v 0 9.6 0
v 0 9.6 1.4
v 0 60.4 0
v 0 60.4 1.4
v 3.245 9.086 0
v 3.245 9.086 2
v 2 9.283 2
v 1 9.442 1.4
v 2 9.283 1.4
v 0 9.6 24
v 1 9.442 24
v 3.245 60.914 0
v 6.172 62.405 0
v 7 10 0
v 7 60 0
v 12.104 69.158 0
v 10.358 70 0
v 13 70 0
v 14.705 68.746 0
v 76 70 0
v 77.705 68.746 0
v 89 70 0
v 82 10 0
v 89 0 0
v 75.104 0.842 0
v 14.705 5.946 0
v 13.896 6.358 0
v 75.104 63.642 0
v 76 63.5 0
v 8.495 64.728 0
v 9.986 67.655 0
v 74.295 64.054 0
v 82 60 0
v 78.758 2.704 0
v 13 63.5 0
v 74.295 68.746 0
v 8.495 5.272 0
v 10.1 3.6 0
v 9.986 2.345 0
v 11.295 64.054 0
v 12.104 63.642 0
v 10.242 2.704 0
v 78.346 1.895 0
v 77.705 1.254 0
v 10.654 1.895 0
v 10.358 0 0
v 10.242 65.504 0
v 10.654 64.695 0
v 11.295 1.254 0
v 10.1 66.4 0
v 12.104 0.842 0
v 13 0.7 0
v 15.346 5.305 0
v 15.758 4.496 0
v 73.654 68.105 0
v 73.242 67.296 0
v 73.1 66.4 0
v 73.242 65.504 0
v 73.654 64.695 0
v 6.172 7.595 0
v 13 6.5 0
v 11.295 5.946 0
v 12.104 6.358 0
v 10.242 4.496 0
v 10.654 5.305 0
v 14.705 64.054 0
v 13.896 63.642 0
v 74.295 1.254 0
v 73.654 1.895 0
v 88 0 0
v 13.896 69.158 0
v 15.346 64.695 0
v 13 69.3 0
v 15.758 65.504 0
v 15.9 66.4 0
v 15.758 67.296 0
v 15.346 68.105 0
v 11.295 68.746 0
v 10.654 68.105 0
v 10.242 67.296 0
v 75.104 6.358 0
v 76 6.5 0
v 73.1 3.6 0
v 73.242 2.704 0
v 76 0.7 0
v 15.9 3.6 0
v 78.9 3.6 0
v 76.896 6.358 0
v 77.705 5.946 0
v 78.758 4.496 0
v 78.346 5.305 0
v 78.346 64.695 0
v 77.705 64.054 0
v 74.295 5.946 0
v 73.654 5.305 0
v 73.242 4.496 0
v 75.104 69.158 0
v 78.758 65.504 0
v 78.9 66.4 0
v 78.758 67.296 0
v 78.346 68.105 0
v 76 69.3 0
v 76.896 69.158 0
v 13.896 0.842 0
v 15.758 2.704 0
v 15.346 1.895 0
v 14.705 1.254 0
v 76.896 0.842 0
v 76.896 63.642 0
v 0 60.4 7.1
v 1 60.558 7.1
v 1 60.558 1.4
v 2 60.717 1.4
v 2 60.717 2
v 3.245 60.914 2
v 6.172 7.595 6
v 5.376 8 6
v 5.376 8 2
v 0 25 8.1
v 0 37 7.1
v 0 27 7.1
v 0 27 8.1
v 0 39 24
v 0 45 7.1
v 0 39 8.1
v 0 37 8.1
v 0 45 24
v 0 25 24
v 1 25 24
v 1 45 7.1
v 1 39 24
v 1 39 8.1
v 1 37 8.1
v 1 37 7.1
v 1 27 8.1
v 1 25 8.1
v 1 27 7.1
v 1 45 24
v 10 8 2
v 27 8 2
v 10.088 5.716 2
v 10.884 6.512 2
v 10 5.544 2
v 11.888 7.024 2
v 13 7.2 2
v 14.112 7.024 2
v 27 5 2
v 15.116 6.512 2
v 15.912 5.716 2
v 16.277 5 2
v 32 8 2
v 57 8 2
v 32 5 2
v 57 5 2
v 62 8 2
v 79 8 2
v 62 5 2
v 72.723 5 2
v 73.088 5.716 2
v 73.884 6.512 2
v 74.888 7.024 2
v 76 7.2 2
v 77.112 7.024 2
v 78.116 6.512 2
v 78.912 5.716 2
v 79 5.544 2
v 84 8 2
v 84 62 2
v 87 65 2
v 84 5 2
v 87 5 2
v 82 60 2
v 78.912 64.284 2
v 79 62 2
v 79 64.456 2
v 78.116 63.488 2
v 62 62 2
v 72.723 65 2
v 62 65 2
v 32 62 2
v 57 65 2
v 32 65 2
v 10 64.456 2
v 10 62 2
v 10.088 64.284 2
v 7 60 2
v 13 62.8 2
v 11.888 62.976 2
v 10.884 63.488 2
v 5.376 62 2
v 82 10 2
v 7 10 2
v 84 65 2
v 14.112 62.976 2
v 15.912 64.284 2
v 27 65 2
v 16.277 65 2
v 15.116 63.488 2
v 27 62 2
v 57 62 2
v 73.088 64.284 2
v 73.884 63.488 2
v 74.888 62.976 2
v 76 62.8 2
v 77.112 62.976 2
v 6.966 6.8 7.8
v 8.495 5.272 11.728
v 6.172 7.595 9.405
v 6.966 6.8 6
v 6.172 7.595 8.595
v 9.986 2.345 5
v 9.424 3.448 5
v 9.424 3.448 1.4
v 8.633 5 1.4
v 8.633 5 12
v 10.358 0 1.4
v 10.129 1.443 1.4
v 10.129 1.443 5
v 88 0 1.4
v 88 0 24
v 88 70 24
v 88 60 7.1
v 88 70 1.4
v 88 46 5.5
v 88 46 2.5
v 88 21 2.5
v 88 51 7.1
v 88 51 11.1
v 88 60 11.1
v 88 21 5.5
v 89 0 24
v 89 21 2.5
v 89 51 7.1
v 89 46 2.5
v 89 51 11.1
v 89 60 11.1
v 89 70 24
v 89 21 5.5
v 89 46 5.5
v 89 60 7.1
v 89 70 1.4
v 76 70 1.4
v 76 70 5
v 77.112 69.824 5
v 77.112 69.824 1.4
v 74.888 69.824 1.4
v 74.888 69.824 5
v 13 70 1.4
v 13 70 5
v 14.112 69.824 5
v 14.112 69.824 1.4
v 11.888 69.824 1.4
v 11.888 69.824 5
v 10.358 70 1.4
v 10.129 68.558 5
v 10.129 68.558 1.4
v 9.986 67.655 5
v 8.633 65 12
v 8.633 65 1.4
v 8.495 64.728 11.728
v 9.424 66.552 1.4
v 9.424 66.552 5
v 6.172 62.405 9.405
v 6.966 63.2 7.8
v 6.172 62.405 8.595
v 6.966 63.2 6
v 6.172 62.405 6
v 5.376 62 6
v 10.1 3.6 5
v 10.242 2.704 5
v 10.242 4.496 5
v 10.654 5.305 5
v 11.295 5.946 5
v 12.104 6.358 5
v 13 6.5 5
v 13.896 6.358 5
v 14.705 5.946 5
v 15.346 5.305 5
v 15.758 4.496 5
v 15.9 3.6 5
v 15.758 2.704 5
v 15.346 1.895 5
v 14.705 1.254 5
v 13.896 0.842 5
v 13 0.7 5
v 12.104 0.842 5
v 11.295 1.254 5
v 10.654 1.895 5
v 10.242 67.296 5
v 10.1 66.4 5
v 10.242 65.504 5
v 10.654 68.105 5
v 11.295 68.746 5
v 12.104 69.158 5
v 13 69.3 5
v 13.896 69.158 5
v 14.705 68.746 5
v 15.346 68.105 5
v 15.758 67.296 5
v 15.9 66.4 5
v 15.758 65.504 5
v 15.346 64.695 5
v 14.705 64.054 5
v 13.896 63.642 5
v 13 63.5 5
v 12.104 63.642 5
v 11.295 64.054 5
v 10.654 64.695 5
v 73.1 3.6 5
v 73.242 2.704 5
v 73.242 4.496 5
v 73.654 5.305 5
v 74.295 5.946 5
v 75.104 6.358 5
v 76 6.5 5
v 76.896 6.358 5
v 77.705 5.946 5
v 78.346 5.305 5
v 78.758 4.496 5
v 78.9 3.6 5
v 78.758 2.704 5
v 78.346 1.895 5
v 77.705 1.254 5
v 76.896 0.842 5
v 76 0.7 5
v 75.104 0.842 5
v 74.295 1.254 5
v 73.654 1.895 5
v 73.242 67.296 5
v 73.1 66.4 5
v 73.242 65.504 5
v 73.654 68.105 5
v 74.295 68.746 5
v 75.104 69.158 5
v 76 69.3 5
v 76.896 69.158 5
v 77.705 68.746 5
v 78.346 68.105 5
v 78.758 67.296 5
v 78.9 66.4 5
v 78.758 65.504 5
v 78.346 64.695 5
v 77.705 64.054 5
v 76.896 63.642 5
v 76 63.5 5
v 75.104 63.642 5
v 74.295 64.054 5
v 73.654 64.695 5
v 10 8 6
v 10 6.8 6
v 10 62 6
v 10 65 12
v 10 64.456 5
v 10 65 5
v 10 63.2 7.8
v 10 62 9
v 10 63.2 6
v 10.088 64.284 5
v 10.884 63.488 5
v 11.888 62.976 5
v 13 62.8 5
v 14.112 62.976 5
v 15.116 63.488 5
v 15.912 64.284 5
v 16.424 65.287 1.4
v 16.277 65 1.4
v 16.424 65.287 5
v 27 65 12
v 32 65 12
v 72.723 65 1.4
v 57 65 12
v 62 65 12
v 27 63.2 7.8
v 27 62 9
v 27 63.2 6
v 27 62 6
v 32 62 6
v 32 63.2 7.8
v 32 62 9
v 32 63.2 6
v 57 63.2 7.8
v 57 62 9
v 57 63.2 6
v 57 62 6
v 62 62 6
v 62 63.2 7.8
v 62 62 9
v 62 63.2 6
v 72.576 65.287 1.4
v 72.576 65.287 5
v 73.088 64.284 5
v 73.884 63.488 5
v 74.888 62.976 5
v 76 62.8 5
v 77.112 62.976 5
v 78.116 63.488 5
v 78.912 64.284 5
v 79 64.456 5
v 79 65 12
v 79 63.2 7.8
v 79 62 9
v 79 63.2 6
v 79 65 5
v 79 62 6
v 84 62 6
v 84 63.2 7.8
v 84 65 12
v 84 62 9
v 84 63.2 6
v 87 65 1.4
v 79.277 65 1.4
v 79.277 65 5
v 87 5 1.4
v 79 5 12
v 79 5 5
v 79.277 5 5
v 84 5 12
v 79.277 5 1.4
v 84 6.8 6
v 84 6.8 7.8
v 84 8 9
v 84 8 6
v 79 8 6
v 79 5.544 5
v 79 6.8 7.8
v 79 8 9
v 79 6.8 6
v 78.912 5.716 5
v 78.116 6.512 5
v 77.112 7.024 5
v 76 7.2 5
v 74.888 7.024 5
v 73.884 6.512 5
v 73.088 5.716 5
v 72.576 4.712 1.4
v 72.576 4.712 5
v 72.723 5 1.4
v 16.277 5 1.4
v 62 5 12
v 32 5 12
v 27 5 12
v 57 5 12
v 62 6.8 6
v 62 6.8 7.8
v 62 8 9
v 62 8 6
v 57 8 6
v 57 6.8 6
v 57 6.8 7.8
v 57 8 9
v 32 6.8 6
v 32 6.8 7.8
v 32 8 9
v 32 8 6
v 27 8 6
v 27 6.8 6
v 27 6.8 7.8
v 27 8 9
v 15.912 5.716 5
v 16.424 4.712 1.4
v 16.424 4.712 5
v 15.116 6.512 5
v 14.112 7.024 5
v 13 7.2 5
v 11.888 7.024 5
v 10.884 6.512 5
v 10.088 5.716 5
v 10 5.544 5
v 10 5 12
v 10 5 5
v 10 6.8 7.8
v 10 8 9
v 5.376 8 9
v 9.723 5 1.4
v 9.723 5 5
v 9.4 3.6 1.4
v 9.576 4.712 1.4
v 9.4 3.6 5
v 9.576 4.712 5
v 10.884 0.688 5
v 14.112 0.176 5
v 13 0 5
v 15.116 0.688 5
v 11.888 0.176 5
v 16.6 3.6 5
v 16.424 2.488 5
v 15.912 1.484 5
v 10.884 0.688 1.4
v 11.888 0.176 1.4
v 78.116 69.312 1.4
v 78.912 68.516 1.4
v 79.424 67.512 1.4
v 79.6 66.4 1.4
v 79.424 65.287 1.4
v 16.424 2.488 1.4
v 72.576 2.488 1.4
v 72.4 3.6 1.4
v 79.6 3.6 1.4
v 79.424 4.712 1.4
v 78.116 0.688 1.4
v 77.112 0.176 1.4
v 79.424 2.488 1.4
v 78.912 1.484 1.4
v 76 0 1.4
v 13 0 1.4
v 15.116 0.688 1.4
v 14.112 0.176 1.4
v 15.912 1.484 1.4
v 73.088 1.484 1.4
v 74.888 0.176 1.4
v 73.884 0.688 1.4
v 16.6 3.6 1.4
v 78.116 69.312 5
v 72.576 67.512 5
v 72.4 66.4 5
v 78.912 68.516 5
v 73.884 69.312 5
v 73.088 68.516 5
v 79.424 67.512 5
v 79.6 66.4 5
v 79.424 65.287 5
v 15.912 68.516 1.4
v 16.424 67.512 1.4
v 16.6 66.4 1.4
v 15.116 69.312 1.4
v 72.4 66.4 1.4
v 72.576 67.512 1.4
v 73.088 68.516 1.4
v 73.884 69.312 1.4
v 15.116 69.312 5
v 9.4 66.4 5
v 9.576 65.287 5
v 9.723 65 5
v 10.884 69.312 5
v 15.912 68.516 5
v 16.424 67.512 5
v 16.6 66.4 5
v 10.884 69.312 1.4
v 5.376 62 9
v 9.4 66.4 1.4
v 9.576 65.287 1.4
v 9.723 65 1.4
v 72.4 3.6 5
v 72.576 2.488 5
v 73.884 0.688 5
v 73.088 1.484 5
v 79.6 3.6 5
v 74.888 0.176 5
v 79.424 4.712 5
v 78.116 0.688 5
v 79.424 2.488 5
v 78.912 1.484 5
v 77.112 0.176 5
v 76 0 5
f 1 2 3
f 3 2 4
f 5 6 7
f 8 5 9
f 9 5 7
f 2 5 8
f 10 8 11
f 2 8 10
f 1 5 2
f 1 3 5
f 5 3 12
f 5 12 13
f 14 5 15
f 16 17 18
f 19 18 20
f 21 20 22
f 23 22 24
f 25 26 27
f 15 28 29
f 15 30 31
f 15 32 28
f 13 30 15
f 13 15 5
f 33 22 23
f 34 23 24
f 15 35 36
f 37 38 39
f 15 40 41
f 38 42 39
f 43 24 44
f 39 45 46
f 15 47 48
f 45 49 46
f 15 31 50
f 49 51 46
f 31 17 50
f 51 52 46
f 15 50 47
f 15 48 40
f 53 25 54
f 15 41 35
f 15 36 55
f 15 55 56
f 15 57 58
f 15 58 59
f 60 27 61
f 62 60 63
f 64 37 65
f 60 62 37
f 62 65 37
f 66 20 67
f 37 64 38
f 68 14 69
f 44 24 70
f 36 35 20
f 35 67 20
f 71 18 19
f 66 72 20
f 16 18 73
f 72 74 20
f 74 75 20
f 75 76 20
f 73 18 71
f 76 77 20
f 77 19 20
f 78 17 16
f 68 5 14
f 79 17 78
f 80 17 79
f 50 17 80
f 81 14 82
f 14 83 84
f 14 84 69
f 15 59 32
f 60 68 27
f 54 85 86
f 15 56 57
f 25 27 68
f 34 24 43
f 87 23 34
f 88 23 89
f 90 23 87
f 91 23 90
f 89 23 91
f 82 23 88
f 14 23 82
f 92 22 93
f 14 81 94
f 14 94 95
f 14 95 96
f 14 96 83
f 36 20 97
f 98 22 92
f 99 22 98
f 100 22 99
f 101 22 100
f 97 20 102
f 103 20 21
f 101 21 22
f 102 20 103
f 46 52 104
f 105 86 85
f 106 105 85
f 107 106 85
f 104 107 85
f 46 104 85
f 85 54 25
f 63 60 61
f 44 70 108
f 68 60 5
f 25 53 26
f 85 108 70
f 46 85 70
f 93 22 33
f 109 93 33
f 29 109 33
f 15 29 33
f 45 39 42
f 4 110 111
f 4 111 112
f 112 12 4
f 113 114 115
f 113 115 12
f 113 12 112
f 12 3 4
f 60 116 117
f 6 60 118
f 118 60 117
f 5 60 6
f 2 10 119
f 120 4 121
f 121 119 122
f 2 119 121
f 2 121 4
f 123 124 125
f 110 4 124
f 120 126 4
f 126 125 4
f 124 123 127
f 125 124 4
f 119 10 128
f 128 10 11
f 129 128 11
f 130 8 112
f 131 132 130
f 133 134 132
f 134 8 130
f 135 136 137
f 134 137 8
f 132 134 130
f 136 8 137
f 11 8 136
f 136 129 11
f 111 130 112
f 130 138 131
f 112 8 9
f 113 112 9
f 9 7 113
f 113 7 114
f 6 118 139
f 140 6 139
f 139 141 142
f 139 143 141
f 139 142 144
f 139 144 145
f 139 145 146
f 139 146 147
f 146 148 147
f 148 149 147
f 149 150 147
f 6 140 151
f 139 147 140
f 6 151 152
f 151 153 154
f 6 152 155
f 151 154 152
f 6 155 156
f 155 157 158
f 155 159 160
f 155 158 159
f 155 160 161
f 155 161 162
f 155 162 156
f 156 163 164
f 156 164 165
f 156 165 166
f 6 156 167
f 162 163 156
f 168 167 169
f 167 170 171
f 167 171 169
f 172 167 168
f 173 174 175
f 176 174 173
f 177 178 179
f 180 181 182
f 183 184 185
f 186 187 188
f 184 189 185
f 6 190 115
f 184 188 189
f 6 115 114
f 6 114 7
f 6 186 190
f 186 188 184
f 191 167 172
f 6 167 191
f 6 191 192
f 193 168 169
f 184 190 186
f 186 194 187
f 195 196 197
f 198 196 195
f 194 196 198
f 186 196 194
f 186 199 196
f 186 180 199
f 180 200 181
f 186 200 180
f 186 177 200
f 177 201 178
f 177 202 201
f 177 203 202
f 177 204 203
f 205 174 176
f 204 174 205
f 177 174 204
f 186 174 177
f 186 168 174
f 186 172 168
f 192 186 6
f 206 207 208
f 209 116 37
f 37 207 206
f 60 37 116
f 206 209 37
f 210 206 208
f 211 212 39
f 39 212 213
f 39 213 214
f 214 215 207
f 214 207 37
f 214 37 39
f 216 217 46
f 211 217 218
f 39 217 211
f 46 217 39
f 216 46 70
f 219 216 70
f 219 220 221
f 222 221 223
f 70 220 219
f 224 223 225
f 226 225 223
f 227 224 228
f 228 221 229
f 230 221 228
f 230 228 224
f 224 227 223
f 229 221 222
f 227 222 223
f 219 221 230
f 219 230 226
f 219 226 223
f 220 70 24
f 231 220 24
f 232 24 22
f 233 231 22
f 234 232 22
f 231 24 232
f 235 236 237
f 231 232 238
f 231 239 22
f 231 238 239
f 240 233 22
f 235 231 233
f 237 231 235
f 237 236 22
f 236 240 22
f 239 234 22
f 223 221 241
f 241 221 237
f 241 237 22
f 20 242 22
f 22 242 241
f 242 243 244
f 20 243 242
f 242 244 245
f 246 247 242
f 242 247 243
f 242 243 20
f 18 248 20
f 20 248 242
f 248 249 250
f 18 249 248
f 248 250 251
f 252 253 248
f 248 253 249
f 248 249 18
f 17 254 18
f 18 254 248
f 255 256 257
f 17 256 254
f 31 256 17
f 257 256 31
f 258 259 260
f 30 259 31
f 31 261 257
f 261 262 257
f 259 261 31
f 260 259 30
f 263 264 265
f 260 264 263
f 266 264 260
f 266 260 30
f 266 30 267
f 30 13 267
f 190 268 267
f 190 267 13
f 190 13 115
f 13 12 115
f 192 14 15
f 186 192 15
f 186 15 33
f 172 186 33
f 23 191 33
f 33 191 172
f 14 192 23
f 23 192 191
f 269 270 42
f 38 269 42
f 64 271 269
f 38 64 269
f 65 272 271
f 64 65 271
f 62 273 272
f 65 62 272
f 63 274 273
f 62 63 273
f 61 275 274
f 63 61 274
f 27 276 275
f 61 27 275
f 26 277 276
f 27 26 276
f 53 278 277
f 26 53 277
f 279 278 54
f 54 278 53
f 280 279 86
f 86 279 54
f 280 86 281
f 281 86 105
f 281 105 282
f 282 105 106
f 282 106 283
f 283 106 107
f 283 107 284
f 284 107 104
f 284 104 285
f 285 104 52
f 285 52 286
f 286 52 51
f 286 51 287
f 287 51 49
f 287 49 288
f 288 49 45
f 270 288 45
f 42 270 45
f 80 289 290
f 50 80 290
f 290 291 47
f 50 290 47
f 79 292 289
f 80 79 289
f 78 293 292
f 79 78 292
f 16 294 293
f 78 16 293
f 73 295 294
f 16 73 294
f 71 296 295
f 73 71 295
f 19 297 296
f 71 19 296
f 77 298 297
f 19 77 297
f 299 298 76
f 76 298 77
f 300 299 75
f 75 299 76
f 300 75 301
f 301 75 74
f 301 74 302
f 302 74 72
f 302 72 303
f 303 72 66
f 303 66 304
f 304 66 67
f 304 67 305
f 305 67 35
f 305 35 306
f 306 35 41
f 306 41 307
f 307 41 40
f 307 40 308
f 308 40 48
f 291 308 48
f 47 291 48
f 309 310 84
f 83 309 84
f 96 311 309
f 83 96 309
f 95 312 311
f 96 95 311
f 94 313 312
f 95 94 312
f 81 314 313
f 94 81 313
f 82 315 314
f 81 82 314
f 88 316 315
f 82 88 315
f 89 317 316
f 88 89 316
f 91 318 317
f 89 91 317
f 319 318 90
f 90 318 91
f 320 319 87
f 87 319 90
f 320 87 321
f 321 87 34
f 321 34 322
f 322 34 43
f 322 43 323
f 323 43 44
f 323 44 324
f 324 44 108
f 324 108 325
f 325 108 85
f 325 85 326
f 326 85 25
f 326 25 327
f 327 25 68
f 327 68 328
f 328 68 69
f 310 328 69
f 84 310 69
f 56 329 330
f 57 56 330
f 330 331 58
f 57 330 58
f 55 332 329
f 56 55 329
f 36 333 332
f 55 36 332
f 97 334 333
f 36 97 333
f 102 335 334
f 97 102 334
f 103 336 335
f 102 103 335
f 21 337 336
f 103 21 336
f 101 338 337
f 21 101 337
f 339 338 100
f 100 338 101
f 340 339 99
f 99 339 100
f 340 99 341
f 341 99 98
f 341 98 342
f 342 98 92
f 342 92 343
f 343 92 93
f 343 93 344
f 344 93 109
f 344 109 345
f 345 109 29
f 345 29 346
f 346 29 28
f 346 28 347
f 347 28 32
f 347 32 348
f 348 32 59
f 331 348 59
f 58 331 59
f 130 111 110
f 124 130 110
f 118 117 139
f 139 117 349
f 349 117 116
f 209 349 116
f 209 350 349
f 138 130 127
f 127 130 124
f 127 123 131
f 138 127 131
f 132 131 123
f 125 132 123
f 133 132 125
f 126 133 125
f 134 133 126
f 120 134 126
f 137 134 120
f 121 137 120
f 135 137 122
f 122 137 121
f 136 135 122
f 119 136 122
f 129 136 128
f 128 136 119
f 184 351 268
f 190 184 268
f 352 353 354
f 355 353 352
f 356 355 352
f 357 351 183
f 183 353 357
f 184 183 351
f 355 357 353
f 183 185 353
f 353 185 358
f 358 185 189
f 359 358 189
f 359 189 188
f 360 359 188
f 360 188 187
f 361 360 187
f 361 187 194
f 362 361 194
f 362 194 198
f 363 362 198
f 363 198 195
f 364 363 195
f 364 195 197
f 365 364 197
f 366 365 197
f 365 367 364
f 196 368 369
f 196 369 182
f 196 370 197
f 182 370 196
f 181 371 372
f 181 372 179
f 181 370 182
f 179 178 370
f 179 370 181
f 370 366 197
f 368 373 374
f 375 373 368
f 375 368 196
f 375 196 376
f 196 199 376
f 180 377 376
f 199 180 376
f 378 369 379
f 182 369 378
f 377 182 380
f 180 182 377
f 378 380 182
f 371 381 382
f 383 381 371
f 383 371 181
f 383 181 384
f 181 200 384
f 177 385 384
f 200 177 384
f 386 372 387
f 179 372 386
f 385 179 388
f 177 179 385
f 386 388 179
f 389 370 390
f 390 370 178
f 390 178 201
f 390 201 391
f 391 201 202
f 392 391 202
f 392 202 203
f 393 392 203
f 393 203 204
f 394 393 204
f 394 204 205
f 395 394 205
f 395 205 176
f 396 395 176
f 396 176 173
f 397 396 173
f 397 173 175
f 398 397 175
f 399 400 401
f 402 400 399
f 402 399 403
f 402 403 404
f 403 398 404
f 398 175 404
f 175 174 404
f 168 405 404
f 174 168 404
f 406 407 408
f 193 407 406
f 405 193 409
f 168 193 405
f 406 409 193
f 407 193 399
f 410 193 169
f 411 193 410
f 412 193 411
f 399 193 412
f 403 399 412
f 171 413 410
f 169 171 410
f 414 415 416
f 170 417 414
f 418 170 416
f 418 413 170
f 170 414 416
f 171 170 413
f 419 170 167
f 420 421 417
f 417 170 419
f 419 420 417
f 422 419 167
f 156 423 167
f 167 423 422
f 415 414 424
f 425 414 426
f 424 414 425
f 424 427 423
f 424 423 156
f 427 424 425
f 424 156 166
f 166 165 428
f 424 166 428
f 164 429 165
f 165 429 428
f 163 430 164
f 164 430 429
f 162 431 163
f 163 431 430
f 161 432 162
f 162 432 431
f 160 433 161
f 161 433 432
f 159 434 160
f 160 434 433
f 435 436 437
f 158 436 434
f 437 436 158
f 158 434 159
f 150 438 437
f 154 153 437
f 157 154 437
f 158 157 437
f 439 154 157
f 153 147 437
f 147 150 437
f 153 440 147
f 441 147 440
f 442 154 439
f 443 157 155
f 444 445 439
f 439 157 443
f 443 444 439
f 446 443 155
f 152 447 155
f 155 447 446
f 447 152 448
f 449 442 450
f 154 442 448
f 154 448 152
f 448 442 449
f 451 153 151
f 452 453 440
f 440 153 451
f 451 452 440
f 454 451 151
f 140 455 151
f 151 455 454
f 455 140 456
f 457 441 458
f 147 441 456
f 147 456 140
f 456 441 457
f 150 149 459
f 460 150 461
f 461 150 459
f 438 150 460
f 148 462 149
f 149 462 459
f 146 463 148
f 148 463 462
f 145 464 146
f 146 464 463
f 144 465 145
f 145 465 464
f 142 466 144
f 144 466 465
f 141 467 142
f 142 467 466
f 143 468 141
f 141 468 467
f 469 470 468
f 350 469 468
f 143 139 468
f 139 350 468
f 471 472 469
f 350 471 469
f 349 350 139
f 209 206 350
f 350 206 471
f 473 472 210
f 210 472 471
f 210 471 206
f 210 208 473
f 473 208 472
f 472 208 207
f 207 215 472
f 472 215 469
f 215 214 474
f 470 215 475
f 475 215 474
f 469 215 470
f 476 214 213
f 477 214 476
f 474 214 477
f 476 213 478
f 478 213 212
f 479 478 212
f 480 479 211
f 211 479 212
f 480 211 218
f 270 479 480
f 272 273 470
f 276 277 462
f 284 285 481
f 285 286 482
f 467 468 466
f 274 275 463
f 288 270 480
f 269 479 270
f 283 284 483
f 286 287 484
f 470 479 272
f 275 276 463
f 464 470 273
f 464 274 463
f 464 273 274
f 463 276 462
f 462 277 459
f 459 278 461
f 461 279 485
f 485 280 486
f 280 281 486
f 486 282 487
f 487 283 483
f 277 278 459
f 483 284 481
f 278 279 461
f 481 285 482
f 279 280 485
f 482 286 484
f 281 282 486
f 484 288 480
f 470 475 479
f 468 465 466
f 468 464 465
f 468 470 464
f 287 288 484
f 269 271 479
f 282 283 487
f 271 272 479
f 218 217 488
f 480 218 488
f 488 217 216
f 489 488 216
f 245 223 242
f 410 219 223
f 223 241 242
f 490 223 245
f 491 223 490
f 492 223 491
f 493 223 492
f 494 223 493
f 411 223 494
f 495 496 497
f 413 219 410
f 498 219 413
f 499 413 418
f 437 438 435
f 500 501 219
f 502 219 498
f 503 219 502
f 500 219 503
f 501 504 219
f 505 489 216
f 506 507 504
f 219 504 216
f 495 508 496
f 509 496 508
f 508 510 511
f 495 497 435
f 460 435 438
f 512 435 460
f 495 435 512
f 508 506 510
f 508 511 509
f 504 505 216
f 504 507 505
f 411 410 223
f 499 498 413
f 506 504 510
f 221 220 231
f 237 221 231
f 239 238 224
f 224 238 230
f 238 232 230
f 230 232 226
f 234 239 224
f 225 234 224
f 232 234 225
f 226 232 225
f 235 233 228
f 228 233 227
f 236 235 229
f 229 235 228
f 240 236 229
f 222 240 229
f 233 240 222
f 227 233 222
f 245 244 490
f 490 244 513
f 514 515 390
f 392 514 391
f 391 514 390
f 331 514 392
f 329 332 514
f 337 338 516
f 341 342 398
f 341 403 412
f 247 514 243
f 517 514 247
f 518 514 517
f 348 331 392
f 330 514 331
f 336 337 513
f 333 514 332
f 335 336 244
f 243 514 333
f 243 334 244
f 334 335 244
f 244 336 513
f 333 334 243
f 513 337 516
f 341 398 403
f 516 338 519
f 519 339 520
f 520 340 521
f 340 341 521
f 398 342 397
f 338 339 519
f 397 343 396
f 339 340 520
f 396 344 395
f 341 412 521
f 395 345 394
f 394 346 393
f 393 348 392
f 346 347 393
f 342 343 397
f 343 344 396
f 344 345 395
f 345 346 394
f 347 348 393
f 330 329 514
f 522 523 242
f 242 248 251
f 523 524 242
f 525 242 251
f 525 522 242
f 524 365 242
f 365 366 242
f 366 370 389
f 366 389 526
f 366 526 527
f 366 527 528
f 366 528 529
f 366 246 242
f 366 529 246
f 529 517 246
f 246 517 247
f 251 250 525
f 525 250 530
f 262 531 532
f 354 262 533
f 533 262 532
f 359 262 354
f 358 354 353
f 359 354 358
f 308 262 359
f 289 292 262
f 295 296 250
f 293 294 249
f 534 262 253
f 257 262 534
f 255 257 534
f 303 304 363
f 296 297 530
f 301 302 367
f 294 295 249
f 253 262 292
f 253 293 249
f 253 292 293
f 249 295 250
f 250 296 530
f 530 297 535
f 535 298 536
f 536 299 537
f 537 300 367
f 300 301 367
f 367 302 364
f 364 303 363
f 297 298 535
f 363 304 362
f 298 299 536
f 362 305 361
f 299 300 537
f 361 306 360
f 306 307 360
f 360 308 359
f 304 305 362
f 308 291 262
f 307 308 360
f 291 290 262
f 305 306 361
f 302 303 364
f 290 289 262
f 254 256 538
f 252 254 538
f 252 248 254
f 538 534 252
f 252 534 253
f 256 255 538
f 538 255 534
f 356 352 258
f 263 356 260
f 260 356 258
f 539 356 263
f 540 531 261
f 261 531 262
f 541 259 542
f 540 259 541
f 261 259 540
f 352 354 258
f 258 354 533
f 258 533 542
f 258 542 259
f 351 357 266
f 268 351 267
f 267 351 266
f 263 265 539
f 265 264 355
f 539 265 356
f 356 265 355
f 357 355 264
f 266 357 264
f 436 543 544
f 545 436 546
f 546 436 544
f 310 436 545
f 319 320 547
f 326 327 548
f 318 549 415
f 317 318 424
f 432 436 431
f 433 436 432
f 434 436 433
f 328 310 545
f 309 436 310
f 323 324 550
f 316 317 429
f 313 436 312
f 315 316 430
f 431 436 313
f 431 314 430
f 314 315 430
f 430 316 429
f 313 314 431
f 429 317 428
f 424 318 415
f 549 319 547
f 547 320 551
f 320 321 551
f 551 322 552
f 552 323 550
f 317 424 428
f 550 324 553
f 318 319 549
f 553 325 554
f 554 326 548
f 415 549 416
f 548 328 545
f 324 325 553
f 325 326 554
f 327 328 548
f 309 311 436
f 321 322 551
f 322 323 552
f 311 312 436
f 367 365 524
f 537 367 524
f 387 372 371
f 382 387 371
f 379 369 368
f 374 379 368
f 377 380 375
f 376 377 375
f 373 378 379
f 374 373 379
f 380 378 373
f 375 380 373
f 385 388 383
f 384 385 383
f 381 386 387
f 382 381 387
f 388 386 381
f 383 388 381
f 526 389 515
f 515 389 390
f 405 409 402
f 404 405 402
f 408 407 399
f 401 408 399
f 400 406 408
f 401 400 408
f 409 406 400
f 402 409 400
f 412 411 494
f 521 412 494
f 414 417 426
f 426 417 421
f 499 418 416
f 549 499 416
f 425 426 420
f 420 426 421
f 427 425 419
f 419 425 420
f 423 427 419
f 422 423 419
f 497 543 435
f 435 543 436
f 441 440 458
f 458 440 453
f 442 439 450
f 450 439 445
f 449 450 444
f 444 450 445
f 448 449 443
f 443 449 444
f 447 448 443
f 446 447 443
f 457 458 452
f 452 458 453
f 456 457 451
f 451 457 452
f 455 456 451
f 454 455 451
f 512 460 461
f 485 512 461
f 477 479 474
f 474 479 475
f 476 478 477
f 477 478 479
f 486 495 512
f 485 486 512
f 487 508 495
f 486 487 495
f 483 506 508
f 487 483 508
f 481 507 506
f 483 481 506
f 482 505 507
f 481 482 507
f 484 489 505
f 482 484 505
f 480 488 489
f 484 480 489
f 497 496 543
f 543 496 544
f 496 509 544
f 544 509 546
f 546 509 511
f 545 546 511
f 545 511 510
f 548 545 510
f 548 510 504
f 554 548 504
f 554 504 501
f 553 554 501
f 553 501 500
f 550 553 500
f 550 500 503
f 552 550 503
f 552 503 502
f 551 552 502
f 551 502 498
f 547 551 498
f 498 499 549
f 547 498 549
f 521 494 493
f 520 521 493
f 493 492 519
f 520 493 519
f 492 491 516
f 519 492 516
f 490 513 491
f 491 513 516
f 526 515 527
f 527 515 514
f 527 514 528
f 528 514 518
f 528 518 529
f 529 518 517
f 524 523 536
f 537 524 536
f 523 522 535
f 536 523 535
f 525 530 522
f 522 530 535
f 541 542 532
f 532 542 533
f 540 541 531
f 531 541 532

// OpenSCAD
// file: pibase.scad
small = 0.1;
peg_bite  =  1.0;
bite_extra = 0.2;  // extra clearance for edge of board
peg_gap   =  2.0;
peg_width =  5.0;
peg_depth =  3.0;
peg_sep   =  56 - 2;
peg_raise =  4.0;

board_x = 85.0;
board_y = 56.0;
board_z =  1.1;

//   _
//  | \
//  |  \
//  |   \
//  |  /
//  |  |
//  |  o-|  <- origin
//  |    |
//  |    |
//  ------
module peg()
{
  extra = 1;

  translate([0, -peg_depth+peg_bite,-peg_raise])
  {
    cube([peg_width,peg_depth,peg_raise], center=false);
  }

  translate([0, -peg_depth+peg_bite,0])
  {
    cube([peg_width,peg_depth-peg_bite-bite_extra,peg_gap+peg_bite+peg_bite], center=false);
  }

  translate([0,-peg_depth+peg_bite+extra-extra,peg_gap])
  {
    //cube([peg_width,peg_depth-peg_bite-extra,peg_bite+extra], center=false);
  }

  peg_dxy = peg_depth;
  polyhedron(
    points = [
      [0, peg_bite, peg_gap+peg_bite],
      [0, peg_bite-peg_dxy, peg_gap+peg_bite-peg_dxy],
      [0, peg_bite-peg_dxy, peg_gap+peg_bite+peg_dxy],
      [peg_width, peg_bite, peg_gap+peg_bite],
      [peg_width, peg_bite-peg_dxy, peg_gap+peg_bite-peg_dxy],
      [peg_width, peg_bite-peg_dxy, peg_gap+peg_bite+peg_dxy],
    ],
    triangles = [ 
      [0,2,1],  // right
      [3,4,5],  // left
      [0,3,2],  // top
      [2,3,5],
      [1,2,4],  // back
      [4,2,5],
      [0,1,3],  // bottom
      [3,1,4]
    ]
  );
}

module front_peg(x)
{
  translate([x,0,0]) 
  {
    peg();
  }
}

module back_peg(x)
{
  translate([x,board_y,0])
  {
    mirror([0,1,0])
    {
      peg();
    }
  }
}


module board()
{
  color([0,1,0]) {
    cube([board_x,board_y,board_z],center=false);
  }
  // ethernet block
  large = 10;
  translate([-1,38,board_z]) 
  {
    cube([21,16.5,14.0]);
    translate([-10.0+small,0,0]) cube([10.0,16.5,14]);  // clearance volume - keep clear
    translate([-10.0,0,0]) cube([10.0+large,16.5,15+2]);  // extra clearance above to height of usb
  }

  // usb block
  translate([0,18,board_z]) 
  {
    translate([-7.5,0,1]) cube([18,14,16]);
    translate([-3,2,0]) cube([13,10,1+small]);
  }

  // hdmi block
  translate([board_x-5.0,44.0,board_z])
  {
    cube([6.0,9.0,4.0]);
    translate([6.0-small,0,0]) cube([10.0,9.0,4.0]);  // clearance volume - keep clear
  }

  // SD Card clearance
  translate([board_x-small,14.0,-3.5])
  {
    difference()
    {
      cube([17.0+small, 25.0, 3.0]);  // clearance volume - keep clear
      //translate([-small,10.0,-small]) cube([17.0+small*3,5.0,3+small*2]);
    }
  }

  // audio connector
  translate([13.5, 0, 4.4]) {
    cube([12.0,11.0, 6.5]);
    translate([6.0,0.0,3.25]) rotate([90,0,0]) cylinder(h=4, r=6.5/2);
    translate([6.0,-4+small,3.25]) rotate([90,0,0]) cylinder(h=10, r=6.5/2);  // clearance volume
  }

  // video connector
  translate([33.0,3.0,board_z]) {
    cube([10.0,10.0,13.0]);
    translate([5,0,7.5]) rotate([90,0,0]) cylinder(h=9,r=8.5/2);
    translate([5,0,7.5]) rotate([90,0,0]) cylinder(h=19,r=10.0/2);
  }
}

module pair()
{
  foot_height = 2.0;
  foot_x = peg_width;
  foot_y = board_y + (peg_depth-peg_bite) * 2;
  translate([0,-peg_depth+peg_bite,-peg_raise-foot_height])
  {
    cube([foot_x,foot_y,foot_height],center=false);
  }
}

module pibase()
{
  front_peg(3.0);
  back_peg(3.0);
  front_peg(board_x-peg_width-3.0);
  back_peg(board_x-peg_width-3.0);

  pair();
  translate([board_x-peg_width,0,0])
  {
    pair();
  }

  // more pegs

  front_peg(25.0);
  front_peg(board_x-25.0-peg_width);
  back_peg(25.0);
  back_peg(board_x-25.0-peg_width);


  peg3_offet = 25.0;
  
  
  spar_width = peg_width;
  spar_height = 2.0;
  translate([0,-peg_depth+peg_bite,-peg_raise-spar_height]) {
    cube([board_x, spar_width, spar_height]);
  }
  translate([0,board_y-spar_width+peg_depth-peg_bite,-peg_raise-spar_height]) {
    cube([board_x, spar_width, spar_height]);
  }
}

pibase();
%board();
// main file
use <pibase.scad>

small = 0.1;

board_x = 85.0;
board_y = 56.0;

clearance = 1.0;
base_thickness = 1.0;
floor_thickness = 1.4;
base_x = board_x + base_thickness*2 + clearance*2;
base_y = 70.0;
base_z = 24.0;

board_dx = base_thickness + clearance;
board_dy = (base_y-board_y)/2;
board_dz = 4.0+2.0;

$fa = 1;
$fs = 1;
$fn = 20;

module base_volume()
{
  cube([base_x,base_y,base_z]);
}

module wall(length)
{
  cube([length, base_thickness, base_z]);
}

tab_x = 10.0;
tab_y = 10.0;
tab_r = 2;

module tab()
{
  translate([base_x/2-tab_x/2,-tab_y,0])
  difference() {
    cube([tab_x, tab_y, floor_thickness]);
    translate([tab_x/2,tab_y/2,-small])
    cylinder(r=tab_r,h=floor_thickness+2*small);
  }
}

module floor()
{
  width = 7.0;
  //tab();
  //translate([0,base_y+tab_y,0]) tab();
  difference() {
    cube([base_x, base_y, floor_thickness]);
    translate([width,width,-small]) {
      cube([base_x-width*2, base_y-width*2, floor_thickness+small*2]);
    }
  }
}

module walls()
{
  // wall(base_x);        

  // rotate([0,0,180]) {
  //  translate([-base_x,-base_y,0]) {
  //    wall(base_x);
  //  }
  //}

  rotate([0,0,90]) {
    translate([0,-base_x,0]) {
      wall(base_y);
    }
  }
  rotate([0,0,270]) {
    translate([-base_y,0,0]) {
      wall(base_y);
    }
  }
}

peg_or = 3.6;
peg_ir = peg_or-0.7;
peg_cap = 5;
peg_pilot_ir = 1;
peg_pilot = 1;

module peg()
{
  cylinder(h=5, r=peg_or);
}

module peg_negative()
{
  translate([0,0,-small]) {
    cylinder(h=base_z-peg_cap+small, r=peg_ir);
  }
  translate([0,0,base_z-peg_pilot]) {
    cylinder(h=peg_pilot+small, r=peg_pilot_ir);
  }
}

module pegs()
{
  translate([13,peg_or,0]) peg();
  translate([base_x-13,peg_or,0]) peg();
  translate([13,base_y-peg_or,0]) peg();
  translate([base_x-13,base_y-peg_or,0]) peg();
}

module pegs_negative()
{
  translate([0,peg_or-4.5,-1]) cylinder(h=base_z+2, r=10.5);
  translate([0,base_y-peg_or+4.5,-1]) cylinder(h=base_z+2, r=10.5);

  translate([13,peg_or,0]) peg_negative();
  translate([base_x-13,peg_or,0]) peg_negative();
  translate([13,base_y-peg_or,0]) peg_negative();
  translate([base_x-13,base_y-peg_or,0]) peg_negative();
}

module base()
{
  translate([board_dx,board_dy,board_dz]) pibase();
  floor();
  difference() 
  {
    walls();
    translate([board_dx,board_dy,board_dz]) board();
  }
}

difference() 
{
  union() 
  {
    translate([board_dx, board_dy, board_dz]) %board();
    base();
    //%base_volume();
    pegs();
  }
  pegs_negative();
}
